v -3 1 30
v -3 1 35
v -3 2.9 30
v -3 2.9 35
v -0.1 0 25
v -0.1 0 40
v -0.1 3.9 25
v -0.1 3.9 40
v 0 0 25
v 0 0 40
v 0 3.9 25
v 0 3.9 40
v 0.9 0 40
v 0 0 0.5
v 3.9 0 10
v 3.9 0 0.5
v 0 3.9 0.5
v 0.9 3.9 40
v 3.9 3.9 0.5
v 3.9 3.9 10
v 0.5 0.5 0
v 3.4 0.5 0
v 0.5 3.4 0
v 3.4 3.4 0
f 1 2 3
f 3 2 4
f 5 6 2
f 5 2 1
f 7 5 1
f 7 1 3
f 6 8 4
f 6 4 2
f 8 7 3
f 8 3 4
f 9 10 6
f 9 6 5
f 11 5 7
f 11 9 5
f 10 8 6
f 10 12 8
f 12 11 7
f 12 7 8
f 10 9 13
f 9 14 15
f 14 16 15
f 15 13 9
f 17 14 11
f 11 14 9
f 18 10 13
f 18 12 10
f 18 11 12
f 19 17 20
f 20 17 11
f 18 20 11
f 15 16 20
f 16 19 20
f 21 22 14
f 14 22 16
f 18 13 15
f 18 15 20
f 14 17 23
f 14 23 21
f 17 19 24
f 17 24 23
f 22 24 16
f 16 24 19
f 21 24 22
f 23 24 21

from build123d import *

# Parameters (mm, degrees)
SKETCH_W         = 3.9
SKETCH_H         = 3.9
PAD_DEPTH        = 40
CHAMFER_SIZE2    = 3
CHAMFER_SIZE     = 30
CHAMFER001_SIZE  = 0.5
SKETCH001_W      = 3.9
SKETCH001_H      = 15
PAD001_DEPTH     = 3
CHAMFER002_SIZE2 = 2.9
CHAMFER002_SIZE  = 1
CHAMFER003_SIZE2 = 2.9
CHAMFER003_SIZE  = 1
CHAMFER004_SIZE2 = 2.9
CHAMFER004_SIZE  = 5
CHAMFER005_SIZE2 = 2.9
CHAMFER005_SIZE  = 5


with BuildPart() as part:
    # Sketch → Pad (new body)
    with BuildSketch(Plane.XY):
        with Locations((1.95, 1.95)):
            Rectangle(SKETCH_W, SKETCH_H)
    extrude(amount=PAD_DEPTH)

    # Chamfer
    chamfer_edges = [part.edges().sort_by_distance(p)[0] for p in [
        (3.9, 1.95, 40),
    ]]
    chamfer_side = part.faces().sort_by_distance((3.9, 1.95, 20))[0]
    chamfer(chamfer_edges, length=CHAMFER_SIZE, length2=CHAMFER_SIZE2, reference=chamfer_side)

    # Chamfer001
    chamfer001_edges = [part.edges().sort_by_distance(p)[0] for p in [
        (1.95, 0, 0),
        (3.9, 1.95, 0),
        (1.95, 3.9, 0),
        (0, 1.95, 0),
    ]]
    chamfer(chamfer001_edges, length=CHAMFER001_SIZE)

    # Sketch001 (on Face5 of Chamfer001) → Pad001 (join)
    with BuildSketch(Plane(origin=(0, 0, 0), x_dir=(0, -1, 0), z_dir=(-1, 0, 0))):
        with Locations((-1.95, 32.5)):
            Rectangle(SKETCH001_W, SKETCH001_H)
    extrude(amount=PAD001_DEPTH)

    # Chamfer002
    chamfer002_edges = [part.edges().sort_by_distance(p)[0] for p in [
        (-3, 3.9, 32.5),
    ]]
    chamfer002_side = part.faces().sort_by_distance((-3, 1.95, 32.5))[0]
    chamfer(chamfer002_edges, length=CHAMFER002_SIZE, length2=CHAMFER002_SIZE2, reference=chamfer002_side)

    # Chamfer003
    chamfer003_edges = [part.edges().sort_by_distance(p)[0] for p in [
        (-3, 0, 32.5),
    ]]
    chamfer003_side = part.faces().sort_by_distance((-3, 1.45, 32.5))[0]
    chamfer(chamfer003_edges, length=CHAMFER003_SIZE, length2=CHAMFER003_SIZE2, reference=chamfer003_side)

    # Chamfer004
    chamfer004_edges = [part.edges().sort_by_distance(p)[0] for p in [
        (-3, 1.95, 40),
    ]]
    chamfer004_side = part.faces().sort_by_distance((-3, 1.95, 32.5))[0]
    chamfer(chamfer004_edges, length=CHAMFER004_SIZE, length2=CHAMFER004_SIZE2, reference=chamfer004_side)

    # Chamfer005
    chamfer005_edges = [part.edges().sort_by_distance(p)[0] for p in [
        (-3, 1.95, 25),
    ]]
    chamfer005_side = part.faces().sort_by_distance((-3, 1.95, 30))[0]
    chamfer(chamfer005_edges, length=CHAMFER005_SIZE, length2=CHAMFER005_SIZE2, reference=chamfer005_side)


solid = part.part
